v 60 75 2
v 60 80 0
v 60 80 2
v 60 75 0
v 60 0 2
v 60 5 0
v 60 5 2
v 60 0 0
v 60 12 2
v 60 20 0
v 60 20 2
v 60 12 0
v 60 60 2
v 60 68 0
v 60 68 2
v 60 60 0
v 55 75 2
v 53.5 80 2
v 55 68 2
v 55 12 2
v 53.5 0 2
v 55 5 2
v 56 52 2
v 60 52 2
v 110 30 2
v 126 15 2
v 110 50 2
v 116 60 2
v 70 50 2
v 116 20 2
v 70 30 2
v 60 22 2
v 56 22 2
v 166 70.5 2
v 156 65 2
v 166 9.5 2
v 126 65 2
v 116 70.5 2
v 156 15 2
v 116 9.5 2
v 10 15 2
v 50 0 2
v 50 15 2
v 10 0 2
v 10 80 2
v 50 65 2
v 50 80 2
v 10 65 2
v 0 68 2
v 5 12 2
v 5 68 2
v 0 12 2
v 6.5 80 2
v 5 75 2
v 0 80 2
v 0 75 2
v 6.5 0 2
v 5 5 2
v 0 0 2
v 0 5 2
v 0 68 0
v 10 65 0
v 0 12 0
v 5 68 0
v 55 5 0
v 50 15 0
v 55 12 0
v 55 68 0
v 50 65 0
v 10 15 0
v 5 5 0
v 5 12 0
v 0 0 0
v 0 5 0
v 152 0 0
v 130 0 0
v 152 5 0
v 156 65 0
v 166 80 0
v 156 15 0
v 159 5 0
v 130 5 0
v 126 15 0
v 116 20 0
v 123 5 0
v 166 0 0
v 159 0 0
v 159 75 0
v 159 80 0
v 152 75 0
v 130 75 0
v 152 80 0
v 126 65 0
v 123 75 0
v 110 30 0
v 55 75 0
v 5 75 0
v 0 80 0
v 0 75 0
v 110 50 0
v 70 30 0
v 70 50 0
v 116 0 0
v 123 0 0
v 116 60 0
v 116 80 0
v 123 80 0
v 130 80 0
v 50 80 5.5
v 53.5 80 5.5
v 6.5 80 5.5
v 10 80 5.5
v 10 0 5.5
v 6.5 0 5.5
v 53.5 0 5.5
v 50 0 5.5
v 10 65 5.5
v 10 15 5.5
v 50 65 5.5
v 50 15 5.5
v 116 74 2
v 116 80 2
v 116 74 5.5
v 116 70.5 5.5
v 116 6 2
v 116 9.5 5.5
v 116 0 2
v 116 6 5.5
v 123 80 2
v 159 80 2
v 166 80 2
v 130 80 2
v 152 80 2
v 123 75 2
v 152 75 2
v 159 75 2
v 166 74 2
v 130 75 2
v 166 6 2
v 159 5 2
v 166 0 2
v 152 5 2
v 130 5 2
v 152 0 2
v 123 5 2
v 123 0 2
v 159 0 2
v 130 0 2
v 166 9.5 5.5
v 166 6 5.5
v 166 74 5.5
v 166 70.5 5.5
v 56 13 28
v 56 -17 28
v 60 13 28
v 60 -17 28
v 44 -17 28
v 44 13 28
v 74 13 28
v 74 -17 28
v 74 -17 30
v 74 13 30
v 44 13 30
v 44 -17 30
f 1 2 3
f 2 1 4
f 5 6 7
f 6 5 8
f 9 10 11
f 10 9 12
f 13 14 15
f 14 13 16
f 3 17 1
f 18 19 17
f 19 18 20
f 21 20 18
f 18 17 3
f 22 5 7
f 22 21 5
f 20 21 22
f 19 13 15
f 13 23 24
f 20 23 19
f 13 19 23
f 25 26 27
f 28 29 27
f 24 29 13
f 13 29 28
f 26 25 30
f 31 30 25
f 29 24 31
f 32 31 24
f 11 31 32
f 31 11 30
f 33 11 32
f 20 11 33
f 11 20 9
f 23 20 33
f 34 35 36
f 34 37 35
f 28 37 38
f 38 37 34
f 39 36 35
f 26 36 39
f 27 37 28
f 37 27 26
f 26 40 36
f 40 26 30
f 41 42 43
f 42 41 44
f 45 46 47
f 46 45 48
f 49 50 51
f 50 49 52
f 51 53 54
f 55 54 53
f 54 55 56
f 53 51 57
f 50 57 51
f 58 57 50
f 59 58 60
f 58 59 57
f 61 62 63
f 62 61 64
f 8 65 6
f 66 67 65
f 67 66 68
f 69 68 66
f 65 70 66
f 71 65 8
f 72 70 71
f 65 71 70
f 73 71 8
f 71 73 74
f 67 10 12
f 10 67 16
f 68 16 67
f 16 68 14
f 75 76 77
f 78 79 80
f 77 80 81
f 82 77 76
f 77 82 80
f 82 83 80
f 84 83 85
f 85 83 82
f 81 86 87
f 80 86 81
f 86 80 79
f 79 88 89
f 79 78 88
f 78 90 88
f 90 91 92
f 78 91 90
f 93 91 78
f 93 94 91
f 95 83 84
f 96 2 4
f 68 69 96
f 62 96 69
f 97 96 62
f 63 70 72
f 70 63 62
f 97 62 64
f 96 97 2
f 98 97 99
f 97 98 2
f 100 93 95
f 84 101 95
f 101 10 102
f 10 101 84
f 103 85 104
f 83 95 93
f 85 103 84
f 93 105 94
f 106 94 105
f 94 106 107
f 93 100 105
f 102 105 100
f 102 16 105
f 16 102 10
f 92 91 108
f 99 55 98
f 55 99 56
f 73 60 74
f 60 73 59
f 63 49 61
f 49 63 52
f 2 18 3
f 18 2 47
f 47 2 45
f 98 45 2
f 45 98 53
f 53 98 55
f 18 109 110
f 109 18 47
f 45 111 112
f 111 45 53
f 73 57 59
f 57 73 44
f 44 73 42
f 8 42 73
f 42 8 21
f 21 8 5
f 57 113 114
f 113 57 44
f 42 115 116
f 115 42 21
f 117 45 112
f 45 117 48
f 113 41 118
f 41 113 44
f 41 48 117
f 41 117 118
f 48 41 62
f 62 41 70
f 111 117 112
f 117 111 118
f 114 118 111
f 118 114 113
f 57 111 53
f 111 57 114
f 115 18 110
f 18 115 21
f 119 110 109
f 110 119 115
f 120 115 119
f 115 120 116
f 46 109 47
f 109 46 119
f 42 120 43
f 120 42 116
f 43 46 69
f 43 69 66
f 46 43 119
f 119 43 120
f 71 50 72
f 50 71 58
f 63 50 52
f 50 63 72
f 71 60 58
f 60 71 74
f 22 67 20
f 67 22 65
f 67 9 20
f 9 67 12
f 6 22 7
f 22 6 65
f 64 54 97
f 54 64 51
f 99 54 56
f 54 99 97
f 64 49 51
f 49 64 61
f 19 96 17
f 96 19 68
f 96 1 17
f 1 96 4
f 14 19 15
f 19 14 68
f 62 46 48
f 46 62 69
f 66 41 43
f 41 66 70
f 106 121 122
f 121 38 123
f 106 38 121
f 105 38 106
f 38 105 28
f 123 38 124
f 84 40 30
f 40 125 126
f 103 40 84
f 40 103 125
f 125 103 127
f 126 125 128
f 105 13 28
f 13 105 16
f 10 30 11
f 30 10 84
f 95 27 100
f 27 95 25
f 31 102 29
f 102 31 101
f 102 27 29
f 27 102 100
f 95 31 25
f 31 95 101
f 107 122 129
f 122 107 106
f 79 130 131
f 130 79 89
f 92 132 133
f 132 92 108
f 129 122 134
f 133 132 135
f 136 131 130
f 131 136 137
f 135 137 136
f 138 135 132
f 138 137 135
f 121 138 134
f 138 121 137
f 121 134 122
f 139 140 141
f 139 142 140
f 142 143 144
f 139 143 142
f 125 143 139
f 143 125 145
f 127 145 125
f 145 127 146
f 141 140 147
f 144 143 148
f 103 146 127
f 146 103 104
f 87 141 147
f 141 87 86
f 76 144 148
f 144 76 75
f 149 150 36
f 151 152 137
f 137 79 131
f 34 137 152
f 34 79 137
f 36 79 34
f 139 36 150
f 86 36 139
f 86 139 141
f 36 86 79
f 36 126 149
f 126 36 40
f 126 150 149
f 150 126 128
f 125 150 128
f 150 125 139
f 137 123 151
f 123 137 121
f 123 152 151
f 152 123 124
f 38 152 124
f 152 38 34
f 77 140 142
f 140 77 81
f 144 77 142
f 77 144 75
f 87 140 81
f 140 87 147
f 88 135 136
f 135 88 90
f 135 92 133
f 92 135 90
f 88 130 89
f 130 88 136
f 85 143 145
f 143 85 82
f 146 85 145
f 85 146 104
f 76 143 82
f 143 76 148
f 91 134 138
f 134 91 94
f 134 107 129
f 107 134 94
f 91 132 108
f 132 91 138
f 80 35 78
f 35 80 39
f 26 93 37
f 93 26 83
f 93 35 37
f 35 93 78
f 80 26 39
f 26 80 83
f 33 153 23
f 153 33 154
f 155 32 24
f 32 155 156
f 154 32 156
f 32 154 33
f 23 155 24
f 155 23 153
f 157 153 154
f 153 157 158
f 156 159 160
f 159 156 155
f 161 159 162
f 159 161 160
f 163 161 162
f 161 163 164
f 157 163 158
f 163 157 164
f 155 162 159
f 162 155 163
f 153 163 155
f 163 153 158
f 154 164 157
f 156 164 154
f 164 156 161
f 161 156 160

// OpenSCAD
// file: Clip.scad
module guidePanel(size, itemWidth, rail) {
    width = size[0];
    depth = size[1];
    height = size[2];

    padding = (width-itemWidth)/2;
    railSize = [rail, depth, rail];
    itemEdges = [padding, padding+itemWidth];

    union() {
        cube(size);
        translate([itemEdges[0]-rail, 0, height]) cube(railSize);
        translate([itemEdges[1]     , 0, height]) cube(railSize);
    }
}

module withCutouts(width, depthOffsets, size) {
    module cutoutPair(y) {
        translate([0,             y, 0]) cube(size);
        translate([width-size[0], y, 0]) cube(size);
    }

    difference() {
        children();
        for (y = depthOffsets) cutoutPair(y);
    }
}

module piPanel() {
    width = 60;
    depth = 80;
    height = 2;

    panelSize = [width, depth, height];

    cutoutSize = [5, 7, height];
    cutoutOffsets = [5, depth-7-5];

    itemWidth = 40;
    rail = 3.5;

    difference() {
        withCutouts(width=width, size=cutoutSize, depthOffsets=cutoutOffsets) {
            guidePanel(size=panelSize, itemWidth=itemWidth, rail=rail);
        }
        translate([10, 15, 0]) cube([40, 50, height+rail]);
    }
}

module connector() {
    width = 56;
    depth = 40;
    height = 2;

    boltSize = [40, 20, height];

    difference() {
        cube([width, depth, height]);
        translate([10, (depth-boltSize[1])/2, 0]) cube(boltSize);
    }
}

module claspPanel() {
    width = 80;
    depth = 50;
    height = 2;

    panelSize = [width, depth, height];

    cutoutSize = [5, 7, height];
    cutoutOffsets = [7, 36];

    itemWidth = 61;
    rail = 3.5;

    difference() {
        translate([depth, 0, 0]) {
            rotate(90) {
                withCutouts(width=width, size=cutoutSize, depthOffsets=cutoutOffsets) {
                    guidePanel(size=panelSize, itemWidth=itemWidth, rail=rail);
                }
            }
        }
        translate([width-70, 15, 0]) cube([30, 50, height+rail]);
    }
}

module clip() {
    union() {
        piPanel();
        translate([60, 0, 0]) {
            translate([0, 20, 0]) connector();
            translate([56, 0, 0]) claspPanel();
        }
    }
}

clip();
// main file
use <Clip.scad>

module connector() {
    withSkew(-1.5)
        cube([28, 30, 4]);
}

module sensorMount() {
    cube([30, 30, 2]);
}

module withSkew(d) {
    skew = [
        [1, 0, 0, 0],
        [d, 1, 0, 0],
        [0, 0, 1, 0],
        [0, 0, 0, 1]
    ];
    multmatrix(skew) children();
}

module piSensorMount() {
    union() {
        clip();
        translate([60, 25, 0]) rotate([0, -90, 0]) connector();
        translate([44, -17, 28]) sensorMount();
    }
}

piSensorMount();
